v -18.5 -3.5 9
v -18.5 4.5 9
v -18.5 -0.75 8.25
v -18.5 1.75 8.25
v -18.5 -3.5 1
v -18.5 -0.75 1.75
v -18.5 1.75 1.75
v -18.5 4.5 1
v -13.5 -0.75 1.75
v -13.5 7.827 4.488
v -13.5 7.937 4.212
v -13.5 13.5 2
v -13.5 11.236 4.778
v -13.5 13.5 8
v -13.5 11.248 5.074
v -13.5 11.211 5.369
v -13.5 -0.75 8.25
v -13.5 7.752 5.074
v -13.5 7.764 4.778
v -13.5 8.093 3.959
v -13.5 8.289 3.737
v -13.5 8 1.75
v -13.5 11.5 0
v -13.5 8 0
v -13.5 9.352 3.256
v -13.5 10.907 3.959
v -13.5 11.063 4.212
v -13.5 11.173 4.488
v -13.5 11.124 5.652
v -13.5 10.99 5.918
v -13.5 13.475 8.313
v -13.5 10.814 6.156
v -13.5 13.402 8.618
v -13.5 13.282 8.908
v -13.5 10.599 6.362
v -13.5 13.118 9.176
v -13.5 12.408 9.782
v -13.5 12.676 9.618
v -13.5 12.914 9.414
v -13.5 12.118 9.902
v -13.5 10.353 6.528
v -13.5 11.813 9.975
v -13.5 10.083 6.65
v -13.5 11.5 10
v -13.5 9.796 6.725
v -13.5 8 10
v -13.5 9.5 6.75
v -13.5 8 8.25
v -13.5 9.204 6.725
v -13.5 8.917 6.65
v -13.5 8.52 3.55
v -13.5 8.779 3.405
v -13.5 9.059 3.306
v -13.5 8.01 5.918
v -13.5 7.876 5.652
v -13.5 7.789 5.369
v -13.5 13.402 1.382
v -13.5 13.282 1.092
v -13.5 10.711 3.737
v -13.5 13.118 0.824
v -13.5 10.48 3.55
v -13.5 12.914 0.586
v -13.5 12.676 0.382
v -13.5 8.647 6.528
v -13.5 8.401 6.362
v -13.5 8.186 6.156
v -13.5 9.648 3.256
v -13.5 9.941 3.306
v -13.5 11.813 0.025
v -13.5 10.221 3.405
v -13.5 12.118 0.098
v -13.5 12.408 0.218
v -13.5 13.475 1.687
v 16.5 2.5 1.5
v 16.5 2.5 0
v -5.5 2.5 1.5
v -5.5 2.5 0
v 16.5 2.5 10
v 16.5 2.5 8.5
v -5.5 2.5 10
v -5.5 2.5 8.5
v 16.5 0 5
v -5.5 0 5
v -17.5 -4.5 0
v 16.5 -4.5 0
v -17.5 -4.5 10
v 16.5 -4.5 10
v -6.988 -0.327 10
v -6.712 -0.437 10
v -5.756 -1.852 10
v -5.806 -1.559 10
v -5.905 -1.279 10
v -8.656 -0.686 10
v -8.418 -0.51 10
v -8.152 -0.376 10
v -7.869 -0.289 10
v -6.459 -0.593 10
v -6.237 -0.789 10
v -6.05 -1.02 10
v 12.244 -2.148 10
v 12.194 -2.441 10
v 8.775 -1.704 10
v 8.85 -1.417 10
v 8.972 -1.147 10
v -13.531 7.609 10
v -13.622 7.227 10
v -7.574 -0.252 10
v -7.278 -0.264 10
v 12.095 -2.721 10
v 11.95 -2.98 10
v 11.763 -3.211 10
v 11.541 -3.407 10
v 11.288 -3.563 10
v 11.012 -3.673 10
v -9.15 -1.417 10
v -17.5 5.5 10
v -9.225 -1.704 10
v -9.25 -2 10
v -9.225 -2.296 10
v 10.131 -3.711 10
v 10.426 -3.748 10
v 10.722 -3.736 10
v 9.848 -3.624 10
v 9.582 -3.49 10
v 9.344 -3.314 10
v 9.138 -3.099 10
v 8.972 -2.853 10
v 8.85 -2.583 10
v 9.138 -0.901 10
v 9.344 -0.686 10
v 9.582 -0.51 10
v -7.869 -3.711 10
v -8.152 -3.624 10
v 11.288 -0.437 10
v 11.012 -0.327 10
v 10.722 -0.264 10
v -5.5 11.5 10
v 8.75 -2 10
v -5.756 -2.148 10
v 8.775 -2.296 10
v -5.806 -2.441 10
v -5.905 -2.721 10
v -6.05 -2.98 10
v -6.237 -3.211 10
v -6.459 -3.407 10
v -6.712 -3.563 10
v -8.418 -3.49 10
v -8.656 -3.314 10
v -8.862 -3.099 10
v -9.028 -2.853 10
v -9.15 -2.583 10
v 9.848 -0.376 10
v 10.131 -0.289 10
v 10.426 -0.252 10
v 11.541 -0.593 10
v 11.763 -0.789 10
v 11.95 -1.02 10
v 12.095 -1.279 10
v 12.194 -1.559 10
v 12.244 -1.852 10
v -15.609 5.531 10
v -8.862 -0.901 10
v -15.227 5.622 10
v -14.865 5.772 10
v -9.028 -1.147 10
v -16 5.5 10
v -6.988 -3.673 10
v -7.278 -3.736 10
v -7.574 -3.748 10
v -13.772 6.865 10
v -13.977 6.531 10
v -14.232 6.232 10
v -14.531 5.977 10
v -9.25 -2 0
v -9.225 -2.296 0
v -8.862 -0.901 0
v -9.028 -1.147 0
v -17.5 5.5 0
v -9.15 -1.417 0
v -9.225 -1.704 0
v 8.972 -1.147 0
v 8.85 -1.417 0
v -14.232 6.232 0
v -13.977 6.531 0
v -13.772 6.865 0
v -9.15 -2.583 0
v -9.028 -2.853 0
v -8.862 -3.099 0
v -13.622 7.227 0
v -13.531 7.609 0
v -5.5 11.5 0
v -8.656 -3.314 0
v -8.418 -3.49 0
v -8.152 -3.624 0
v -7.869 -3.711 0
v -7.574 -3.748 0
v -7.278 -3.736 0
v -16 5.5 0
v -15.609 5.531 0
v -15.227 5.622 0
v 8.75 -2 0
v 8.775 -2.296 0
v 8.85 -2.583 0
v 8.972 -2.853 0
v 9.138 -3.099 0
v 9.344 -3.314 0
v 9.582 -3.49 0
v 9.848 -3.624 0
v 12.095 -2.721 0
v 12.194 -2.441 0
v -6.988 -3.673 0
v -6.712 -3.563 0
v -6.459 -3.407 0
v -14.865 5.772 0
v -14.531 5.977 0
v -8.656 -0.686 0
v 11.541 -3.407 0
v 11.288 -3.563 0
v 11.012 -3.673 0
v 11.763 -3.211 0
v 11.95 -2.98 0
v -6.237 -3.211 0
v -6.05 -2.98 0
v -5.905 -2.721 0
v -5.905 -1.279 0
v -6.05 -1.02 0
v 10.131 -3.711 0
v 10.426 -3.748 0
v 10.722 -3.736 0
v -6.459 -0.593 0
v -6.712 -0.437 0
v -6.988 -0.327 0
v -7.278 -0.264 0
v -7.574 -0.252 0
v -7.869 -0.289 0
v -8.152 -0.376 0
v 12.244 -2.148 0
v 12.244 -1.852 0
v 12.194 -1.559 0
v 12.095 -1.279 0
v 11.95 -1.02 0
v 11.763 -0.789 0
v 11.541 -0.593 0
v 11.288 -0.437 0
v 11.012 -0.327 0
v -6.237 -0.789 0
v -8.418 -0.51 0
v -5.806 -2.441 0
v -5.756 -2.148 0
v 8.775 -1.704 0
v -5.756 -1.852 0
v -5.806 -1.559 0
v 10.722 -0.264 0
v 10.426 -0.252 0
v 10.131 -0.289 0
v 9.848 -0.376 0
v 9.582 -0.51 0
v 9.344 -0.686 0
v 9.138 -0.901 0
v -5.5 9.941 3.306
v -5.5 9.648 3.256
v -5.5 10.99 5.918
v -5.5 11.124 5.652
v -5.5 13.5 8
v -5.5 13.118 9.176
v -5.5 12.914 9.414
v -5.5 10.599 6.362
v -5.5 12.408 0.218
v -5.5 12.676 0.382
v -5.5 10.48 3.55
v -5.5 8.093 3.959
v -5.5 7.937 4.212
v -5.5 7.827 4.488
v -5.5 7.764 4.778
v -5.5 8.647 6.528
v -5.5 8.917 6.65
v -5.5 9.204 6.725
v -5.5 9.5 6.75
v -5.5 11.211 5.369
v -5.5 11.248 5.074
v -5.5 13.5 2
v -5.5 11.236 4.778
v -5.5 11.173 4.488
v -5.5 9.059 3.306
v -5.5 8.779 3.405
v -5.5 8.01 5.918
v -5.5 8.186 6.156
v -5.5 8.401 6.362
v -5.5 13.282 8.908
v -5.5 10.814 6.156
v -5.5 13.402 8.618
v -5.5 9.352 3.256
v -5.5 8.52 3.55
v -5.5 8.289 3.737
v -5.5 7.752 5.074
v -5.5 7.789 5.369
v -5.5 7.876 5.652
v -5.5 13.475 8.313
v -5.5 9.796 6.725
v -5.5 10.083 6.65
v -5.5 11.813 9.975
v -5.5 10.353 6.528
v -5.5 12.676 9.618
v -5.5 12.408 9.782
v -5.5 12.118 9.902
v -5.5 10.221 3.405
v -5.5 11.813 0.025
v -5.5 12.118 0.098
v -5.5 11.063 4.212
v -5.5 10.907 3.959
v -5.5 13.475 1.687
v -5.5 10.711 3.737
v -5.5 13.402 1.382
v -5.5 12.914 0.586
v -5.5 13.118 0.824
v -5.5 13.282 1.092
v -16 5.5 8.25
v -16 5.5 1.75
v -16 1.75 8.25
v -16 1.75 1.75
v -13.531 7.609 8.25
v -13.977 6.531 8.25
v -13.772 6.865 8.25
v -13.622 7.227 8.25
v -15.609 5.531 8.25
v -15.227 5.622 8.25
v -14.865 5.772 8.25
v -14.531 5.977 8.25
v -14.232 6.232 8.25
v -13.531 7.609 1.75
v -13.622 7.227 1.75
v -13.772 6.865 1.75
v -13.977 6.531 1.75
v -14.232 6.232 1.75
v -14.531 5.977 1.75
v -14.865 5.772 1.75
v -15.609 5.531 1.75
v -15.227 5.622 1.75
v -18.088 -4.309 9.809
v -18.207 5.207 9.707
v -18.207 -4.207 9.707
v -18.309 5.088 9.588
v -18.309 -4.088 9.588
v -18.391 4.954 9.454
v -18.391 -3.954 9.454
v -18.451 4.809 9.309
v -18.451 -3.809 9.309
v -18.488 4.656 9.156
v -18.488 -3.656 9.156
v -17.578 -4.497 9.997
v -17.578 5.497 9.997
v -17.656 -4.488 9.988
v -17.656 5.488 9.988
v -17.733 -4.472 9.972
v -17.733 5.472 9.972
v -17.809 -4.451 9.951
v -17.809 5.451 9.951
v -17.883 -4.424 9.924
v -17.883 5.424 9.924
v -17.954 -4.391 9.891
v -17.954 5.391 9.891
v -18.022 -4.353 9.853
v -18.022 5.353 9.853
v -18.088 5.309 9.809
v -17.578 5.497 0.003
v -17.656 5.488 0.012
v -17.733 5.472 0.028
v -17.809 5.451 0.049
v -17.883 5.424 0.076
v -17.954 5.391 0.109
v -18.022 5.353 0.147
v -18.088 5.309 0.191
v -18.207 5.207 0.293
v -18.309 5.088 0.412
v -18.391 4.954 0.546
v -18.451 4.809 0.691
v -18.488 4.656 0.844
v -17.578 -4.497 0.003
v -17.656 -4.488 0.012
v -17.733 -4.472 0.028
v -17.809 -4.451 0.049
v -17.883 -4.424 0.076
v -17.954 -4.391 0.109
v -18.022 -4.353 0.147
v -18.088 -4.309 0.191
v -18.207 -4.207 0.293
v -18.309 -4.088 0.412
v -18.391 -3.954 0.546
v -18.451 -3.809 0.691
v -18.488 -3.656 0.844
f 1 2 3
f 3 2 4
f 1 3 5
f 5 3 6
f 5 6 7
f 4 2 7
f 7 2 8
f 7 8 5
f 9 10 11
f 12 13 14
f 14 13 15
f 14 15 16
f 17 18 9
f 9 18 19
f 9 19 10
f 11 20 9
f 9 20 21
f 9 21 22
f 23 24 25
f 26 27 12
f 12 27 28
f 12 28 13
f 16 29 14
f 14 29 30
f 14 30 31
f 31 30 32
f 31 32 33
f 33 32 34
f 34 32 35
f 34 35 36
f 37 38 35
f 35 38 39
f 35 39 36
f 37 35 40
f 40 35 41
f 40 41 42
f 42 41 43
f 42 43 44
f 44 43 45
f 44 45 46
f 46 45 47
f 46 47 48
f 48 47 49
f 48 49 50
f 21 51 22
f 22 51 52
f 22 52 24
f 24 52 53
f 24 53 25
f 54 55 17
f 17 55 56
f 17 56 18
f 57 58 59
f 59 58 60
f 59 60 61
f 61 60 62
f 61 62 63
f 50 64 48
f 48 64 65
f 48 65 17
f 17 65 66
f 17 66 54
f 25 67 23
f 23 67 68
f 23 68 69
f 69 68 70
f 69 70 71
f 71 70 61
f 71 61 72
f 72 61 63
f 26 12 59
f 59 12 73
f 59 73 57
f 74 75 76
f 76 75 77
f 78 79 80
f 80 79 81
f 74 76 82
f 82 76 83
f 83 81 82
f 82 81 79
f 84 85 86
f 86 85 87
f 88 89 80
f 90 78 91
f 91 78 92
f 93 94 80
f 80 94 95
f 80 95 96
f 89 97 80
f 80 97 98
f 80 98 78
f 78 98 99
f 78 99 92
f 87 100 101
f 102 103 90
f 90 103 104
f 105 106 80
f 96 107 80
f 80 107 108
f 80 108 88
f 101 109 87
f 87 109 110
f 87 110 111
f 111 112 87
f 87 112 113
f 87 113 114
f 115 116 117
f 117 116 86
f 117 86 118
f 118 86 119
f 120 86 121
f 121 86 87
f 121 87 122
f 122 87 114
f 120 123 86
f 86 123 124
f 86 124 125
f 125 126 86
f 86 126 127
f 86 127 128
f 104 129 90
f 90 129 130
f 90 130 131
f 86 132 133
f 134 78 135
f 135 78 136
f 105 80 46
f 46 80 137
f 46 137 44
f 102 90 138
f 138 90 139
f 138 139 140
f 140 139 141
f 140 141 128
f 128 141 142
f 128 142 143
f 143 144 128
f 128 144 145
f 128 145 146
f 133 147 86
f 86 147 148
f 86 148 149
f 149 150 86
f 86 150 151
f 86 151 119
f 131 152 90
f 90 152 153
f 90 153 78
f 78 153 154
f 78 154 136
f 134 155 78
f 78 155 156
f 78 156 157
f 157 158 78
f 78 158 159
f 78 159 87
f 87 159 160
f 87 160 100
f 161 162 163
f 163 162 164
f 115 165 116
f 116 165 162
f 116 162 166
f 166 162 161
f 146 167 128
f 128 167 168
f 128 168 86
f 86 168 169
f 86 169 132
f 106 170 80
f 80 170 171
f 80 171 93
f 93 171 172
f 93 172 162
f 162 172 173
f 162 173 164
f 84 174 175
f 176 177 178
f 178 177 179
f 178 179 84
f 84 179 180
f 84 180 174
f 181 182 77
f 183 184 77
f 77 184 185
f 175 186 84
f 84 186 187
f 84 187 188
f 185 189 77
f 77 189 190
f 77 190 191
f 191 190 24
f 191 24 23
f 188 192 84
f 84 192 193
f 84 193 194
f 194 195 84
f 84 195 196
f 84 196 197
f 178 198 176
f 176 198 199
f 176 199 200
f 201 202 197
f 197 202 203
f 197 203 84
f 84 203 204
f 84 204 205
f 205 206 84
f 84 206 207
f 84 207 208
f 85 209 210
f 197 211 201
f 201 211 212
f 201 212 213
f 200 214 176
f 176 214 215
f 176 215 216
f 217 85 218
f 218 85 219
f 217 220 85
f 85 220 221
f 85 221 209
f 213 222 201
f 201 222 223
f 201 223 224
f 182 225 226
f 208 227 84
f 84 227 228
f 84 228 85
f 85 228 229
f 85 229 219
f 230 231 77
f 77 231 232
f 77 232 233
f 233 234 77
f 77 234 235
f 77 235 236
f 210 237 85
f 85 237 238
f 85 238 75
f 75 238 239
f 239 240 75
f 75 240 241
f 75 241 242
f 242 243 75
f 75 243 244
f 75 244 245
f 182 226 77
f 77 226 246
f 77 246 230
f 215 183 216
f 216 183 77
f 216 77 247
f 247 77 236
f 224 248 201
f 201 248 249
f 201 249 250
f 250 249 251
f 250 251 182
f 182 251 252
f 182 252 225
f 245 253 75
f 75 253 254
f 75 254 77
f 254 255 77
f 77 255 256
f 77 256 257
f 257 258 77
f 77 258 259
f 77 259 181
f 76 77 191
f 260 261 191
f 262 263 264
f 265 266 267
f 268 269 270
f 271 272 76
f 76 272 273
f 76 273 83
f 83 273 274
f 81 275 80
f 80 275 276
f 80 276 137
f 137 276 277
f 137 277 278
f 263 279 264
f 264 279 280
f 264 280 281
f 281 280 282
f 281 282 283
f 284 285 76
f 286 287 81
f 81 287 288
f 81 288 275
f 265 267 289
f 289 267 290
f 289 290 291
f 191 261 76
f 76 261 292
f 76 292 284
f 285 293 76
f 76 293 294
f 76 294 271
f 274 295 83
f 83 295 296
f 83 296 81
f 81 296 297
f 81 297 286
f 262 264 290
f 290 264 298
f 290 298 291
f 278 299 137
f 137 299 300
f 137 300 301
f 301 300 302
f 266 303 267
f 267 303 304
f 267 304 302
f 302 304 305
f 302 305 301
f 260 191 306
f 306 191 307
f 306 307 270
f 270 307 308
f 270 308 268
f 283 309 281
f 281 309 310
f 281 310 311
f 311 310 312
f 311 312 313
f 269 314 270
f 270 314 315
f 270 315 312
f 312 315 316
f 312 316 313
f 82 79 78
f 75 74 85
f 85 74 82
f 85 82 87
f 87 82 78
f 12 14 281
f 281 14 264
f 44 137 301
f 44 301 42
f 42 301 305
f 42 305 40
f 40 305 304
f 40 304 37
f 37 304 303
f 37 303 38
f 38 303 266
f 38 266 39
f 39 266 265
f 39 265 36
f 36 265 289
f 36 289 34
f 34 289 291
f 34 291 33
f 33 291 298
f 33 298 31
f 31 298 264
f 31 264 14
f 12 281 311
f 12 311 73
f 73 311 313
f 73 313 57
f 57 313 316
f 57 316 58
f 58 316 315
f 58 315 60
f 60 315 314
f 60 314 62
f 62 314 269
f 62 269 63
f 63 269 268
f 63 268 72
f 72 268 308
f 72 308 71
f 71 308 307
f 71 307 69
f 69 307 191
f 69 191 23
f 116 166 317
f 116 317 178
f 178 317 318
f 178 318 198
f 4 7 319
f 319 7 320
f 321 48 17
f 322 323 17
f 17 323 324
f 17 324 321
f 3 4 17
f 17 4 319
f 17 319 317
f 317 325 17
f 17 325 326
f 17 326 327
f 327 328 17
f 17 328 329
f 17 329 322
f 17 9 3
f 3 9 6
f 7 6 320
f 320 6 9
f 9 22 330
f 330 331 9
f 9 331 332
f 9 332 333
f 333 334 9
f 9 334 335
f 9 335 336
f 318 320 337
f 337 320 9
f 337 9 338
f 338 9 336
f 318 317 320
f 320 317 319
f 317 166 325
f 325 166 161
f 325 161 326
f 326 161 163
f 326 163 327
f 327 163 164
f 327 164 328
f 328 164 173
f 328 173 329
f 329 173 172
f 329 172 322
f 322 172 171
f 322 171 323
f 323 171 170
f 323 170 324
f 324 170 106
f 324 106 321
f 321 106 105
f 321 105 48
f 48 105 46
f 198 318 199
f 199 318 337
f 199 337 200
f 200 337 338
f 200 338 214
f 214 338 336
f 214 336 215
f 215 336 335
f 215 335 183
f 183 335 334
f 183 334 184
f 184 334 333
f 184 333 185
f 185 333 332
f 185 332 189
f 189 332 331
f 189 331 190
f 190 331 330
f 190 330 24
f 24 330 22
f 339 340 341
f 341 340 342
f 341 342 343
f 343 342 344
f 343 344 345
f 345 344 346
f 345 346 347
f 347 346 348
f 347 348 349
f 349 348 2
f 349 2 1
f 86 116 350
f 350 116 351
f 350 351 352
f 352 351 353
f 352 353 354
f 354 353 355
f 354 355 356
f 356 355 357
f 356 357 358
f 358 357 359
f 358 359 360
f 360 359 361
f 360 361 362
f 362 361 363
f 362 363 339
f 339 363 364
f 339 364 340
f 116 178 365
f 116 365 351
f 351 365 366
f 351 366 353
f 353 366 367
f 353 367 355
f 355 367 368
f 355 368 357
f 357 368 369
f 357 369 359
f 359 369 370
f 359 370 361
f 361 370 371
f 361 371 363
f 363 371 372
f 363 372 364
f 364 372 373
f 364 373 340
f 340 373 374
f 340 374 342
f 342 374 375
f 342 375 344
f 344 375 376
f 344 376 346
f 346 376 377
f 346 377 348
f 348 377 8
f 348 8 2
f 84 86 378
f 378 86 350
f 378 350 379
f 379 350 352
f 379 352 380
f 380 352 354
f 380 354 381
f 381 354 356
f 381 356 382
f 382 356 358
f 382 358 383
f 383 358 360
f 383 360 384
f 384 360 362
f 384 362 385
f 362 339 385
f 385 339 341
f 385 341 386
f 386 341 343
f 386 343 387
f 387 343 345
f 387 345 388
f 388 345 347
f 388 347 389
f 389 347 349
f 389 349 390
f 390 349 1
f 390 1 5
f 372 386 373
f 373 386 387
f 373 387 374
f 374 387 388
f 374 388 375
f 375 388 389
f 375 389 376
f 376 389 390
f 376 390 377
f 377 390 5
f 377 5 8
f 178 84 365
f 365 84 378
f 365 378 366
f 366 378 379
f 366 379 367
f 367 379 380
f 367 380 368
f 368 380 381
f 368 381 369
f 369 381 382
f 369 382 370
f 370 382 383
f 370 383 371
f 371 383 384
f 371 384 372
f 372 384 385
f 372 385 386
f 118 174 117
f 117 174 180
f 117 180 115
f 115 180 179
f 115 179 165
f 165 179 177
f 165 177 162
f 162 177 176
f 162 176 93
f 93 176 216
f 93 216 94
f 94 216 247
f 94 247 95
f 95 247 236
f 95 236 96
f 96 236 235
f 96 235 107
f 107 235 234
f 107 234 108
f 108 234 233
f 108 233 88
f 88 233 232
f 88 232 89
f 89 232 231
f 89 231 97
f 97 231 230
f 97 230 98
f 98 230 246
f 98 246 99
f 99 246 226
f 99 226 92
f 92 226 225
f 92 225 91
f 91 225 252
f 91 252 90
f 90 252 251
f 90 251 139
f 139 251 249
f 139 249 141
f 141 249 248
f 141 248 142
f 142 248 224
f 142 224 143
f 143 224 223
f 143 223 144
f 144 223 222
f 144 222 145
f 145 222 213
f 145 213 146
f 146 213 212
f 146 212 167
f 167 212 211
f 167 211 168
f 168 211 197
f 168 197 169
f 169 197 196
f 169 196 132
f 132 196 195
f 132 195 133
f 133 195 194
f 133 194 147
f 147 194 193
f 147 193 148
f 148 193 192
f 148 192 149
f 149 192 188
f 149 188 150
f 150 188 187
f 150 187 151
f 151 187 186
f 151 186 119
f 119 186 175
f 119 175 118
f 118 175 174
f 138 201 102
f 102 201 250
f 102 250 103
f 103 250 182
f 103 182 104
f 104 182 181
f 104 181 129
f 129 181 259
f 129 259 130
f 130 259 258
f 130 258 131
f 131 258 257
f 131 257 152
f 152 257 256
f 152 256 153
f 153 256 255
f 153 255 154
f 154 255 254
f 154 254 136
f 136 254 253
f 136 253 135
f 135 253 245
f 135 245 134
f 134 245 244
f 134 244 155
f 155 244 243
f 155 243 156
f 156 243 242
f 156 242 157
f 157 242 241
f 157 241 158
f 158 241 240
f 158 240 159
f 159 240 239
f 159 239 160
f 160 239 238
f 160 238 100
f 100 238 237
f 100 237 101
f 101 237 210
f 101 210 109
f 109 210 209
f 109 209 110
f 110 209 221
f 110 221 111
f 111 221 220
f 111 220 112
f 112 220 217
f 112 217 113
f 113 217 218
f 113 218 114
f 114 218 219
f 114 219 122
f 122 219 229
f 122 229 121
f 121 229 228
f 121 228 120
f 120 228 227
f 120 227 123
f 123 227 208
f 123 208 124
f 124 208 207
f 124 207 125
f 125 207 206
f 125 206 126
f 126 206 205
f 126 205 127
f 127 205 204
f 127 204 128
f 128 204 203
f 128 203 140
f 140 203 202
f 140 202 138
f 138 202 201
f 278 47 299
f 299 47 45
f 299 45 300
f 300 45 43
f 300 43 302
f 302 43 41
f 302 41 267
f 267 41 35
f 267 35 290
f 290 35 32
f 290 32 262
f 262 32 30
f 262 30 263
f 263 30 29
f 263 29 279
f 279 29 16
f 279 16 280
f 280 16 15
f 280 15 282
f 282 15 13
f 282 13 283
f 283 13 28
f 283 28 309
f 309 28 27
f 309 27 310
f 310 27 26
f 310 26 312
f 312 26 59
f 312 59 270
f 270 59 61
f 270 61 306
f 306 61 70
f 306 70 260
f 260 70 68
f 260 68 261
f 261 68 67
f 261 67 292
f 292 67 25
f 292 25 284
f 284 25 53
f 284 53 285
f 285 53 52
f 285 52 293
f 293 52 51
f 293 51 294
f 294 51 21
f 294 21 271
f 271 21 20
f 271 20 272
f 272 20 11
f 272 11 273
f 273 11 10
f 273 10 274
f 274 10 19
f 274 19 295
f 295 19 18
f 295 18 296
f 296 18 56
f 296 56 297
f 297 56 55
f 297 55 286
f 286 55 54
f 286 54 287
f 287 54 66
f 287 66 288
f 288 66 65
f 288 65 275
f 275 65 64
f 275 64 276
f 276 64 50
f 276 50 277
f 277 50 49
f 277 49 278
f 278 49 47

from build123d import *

# Parameters (mm, degrees)
SKETCH_1_W           = 27
SKETCH_1_H           = 9
EXTRUDE_1_DEPTH      = 10
SKETCH_4_W           = 5
SKETCH_4_H           = 10
EXTRUDE_4_DEPTH      = 6
SKETCH_5_W           = 22
SKETCH_5_H           = 10
CUT_EXTRUDE_1_DEPTH  = 2
CUT_EXTRUDE_2_DEPTH  = 22
FILLET_1_R           = 1
FILLET_2_R           = 1
SKETCH_8_W           = 10
SKETCH_8_H           = 20
EXTRUDE_5_DEPTH      = 8
FILLET_3_R           = 2
FILLET_4_R           = 2
EXTRUDE_6_DEPTH      = 3
SKETCH_11_W          = 10
SKETCH_11_H          = 2.149089289
CUT_EXTRUDE_5_DEPTH  = 29.70975444
FILLET_5_R           = 2
FILLET_6_R           = 2
SKETCH_14_R          = 1.5
CUT_EXTRUDE_6_DEPTH  = 24.547823679
SKETCH_15_R          = 1.5
EXTRUDE_7_DEPTH      = 10
SKETCH_18_R          = 1.5
EXTRUDE_9_DEPTH      = 10
SKETCH_17_R          = 1.5
CUT_EXTRUDE_7_DEPTH  = 24.547823679
SKETCH_19_R          = 1.5
CUT_EXTRUDE_8_DEPTH  = 24.547823679
CUT_EXTRUDE_9_DEPTH  = 22
SKETCH_23_W          = 10
SKETCH_23_H          = 10
EXTRUDE_10_DEPTH     = 5
SKETCH_24_W          = 3.25
SKETCH_24_H          = 1.25
CUT_EXTRUDE_11_DEPTH = 4
CUT_EXTRUDE_12_DEPTH = 6.25
FILLET_7_R           = 2.5
FILLET_8_R           = 1
SKETCH_26_R          = 1.5
CUT_EXTRUDE_13_DEPTH = 35.383862494
SKETCH_27_R          = 1.75
CUT_EXTRUDE_14_DEPTH = 25.989997999
SKETCH_28_R          = 1.75
CUT_EXTRUDE_15_DEPTH = 35.383862494


with BuildPart() as part:
    # Эскиз1 → Бобышка-Вытянуть1 (new body)
    with BuildSketch(Plane.XY):
        Rectangle(SKETCH_1_W, SKETCH_1_H)
    extrude(amount=EXTRUDE_1_DEPTH)

    # Эскиз4 → Бобышка-Вытянуть4 (add)
    with BuildSketch(Plane(origin=(0, 4.5, 0), x_dir=(1, 0, 0), z_dir=(0, 1, 0))):
        with Locations((-11, -5)):
            Rectangle(SKETCH_4_W, SKETCH_4_H)
    extrude(amount=EXTRUDE_4_DEPTH)

    # Эскиз5 → Вырез-Вытянуть1 (cut)
    with BuildSketch(Plane(origin=(0, 4.5, 0), x_dir=(1, 0, 0), z_dir=(0, 1, 0))):
        with Locations((2.5, -5)):
            Rectangle(SKETCH_5_W, SKETCH_5_H)
    extrude(amount=-CUT_EXTRUDE_1_DEPTH, mode=Mode.SUBTRACT)

    # Эскиз6 → Вырез-Вытянуть2 (cut)
    with BuildSketch(Plane(origin=(13.5, 0, 0), x_dir=(0, 0, -1), z_dir=(1, 0, 0))):
        Polygon((-1.5, 2.5), (-8.5, 2.5), (-5, 0), align=None)
    extrude(amount=-CUT_EXTRUDE_2_DEPTH, mode=Mode.SUBTRACT)

    # Скругление1
    fillet_1_edges = [part.edges().sort_by_distance(p)[0] for p in [
        (-11, 10.5, 10),
    ]]
    fillet(fillet_1_edges, radius=FILLET_1_R)

    # Скругление2
    fillet_2_edges = [part.edges().sort_by_distance(p)[0] for p in [
        (-11, 10.5, 0),
    ]]
    fillet(fillet_2_edges, radius=FILLET_2_R)

    # Эскиз8 → Бобышка-Вытянуть5 (add)
    with BuildSketch(Plane.ZY.offset(13.5)):
        with Locations((5, 5.5)):
            Rectangle(SKETCH_8_W, SKETCH_8_H)
    extrude(amount=-EXTRUDE_5_DEPTH)

    # Скругление3
    fillet_3_edges = [part.edges().sort_by_distance(p)[0] for p in [
        (-9.5, 15.5, 10),
    ]]
    fillet(fillet_3_edges, radius=FILLET_3_R)

    # Скругление4
    fillet_4_edges = [part.edges().sort_by_distance(p)[0] for p in [
        (-9.5, 15.5, 0),
    ]]
    fillet(fillet_4_edges, radius=FILLET_4_R)

    # Эскиз9 → Бобышка-Вытянуть6 (add)
    with BuildSketch(Plane(origin=(13.5, 0, 0), x_dir=(0, 0, -1), z_dir=(1, 0, 0))):
        Polygon((-10, -4.5), (-10, 2.5), (-8.5, 2.5), (-5, 0), (-1.5, 2.5), (0, 2.5), (0, -4.5), align=None)
    extrude(amount=EXTRUDE_6_DEPTH)

    # Эскиз11 → Вырез-Вытянуть5 (cut, through all)
    with BuildSketch(Plane(origin=(-5.5, 0, 0), x_dir=(0, 0, -1), z_dir=(1, 0, 0))):
        with Locations((-5, 14.574544645)):
            Rectangle(SKETCH_11_W, SKETCH_11_H)
    extrude(amount=-CUT_EXTRUDE_5_DEPTH, mode=Mode.SUBTRACT)

    # Скругление5
    fillet_5_edges = [part.edges().sort_by_distance(p)[0] for p in [
        (-9.5, 13.5, 10),
    ]]
    fillet(fillet_5_edges, radius=FILLET_5_R)

    # Скругление6
    fillet_6_edges = [part.edges().sort_by_distance(p)[0] for p in [
        (-9.5, 13.5, 0),
    ]]
    fillet(fillet_6_edges, radius=FILLET_6_R)

    # Эскиз14 → Вырез-Вытянуть6 (cut, through all)
    with BuildSketch(Plane.XY.offset(10)):
        with Locations((-7.5, -1)):
            Circle(SKETCH_14_R)
        with Locations((10.5, -1)):
            Circle(SKETCH_14_R)
    extrude(amount=-CUT_EXTRUDE_6_DEPTH, mode=Mode.SUBTRACT)

    # Эскиз15 → Бобышка-Вытянуть7 (add, through all)
    with BuildSketch(Plane.XY.offset(10)):
        with Locations((10.5, -1)):
            Circle(SKETCH_15_R)
    extrude(amount=-EXTRUDE_7_DEPTH)

    # Эскиз18 → Бобышка-Вытянуть9 (add, through all)
    with BuildSketch(Plane.XY.offset(10)):
        with Locations((-7.5, -1)):
            Circle(SKETCH_18_R)
    extrude(amount=-EXTRUDE_9_DEPTH)

    # Эскиз17 → Вырез-Вытянуть7 (cut, through all)
    with BuildSketch(Plane.XY.offset(10)):
        with Locations((-7.5, -2)):
            Circle(SKETCH_17_R)
    extrude(amount=-CUT_EXTRUDE_7_DEPTH, mode=Mode.SUBTRACT)

    # Эскиз19 → Вырез-Вытянуть8 (cut, through all)
    with BuildSketch(Plane.XY.offset(10)):
        with Locations((10.5, -2)):
            Circle(SKETCH_19_R)
    extrude(amount=-CUT_EXTRUDE_8_DEPTH, mode=Mode.SUBTRACT)

    # Эскиз20 → Вырез-Вытянуть9 (cut)
    with BuildSketch(Plane(origin=(16.5, 0, 0), x_dir=(0, 0, -1), z_dir=(1, 0, 0))):
        Polygon((-8.5, 2.5), (-5, 0), (-1.5, 2.5), align=None)
    extrude(amount=-CUT_EXTRUDE_9_DEPTH, mode=Mode.SUBTRACT)

    # Эскиз23 → Бобышка-Вытянуть10 (add)
    with BuildSketch(Plane.ZY.offset(13.5)):
        with Locations((5, 0.5)):
            Rectangle(SKETCH_23_W, SKETCH_23_H)
    extrude(amount=EXTRUDE_10_DEPTH)

    # Эскиз24 → Вырез-Вытянуть11 (cut)
    with BuildSketch(Plane.ZY.offset(18.5)):
        with Locations((3.375, 1.125)):
            Rectangle(SKETCH_24_W, SKETCH_24_H)
        with Locations((6.625, 1.125)):
            Rectangle(SKETCH_24_W, SKETCH_24_H)
        with Locations((3.375, -0.125)):
            Rectangle(SKETCH_24_W, SKETCH_24_H)
        with Locations((6.625, -0.125)):
            Rectangle(SKETCH_24_W, SKETCH_24_H)
    extrude(amount=-CUT_EXTRUDE_11_DEPTH, mode=Mode.SUBTRACT)

    # Эскиз25 → Вырез-Вытянуть12 (cut)
    with BuildSketch(Plane(origin=(0, 5.5, 0), x_dir=(1, 0, 0), z_dir=(0, 1, 0))):
        Polygon((-13.5, -5), (-13.5, -1.75), (-16, -1.75), (-16, -8.25), (-13.5, -8.25), align=None)
    extrude(amount=-CUT_EXTRUDE_12_DEPTH, mode=Mode.SUBTRACT)

    # Скругление7
    fillet_7_edges = [part.edges().sort_by_distance(p)[0] for p in [
        (-13.5, 5.5, 9.125),
        (-13.5, 5.5, 0.875),
    ]]
    fillet(fillet_7_edges, radius=FILLET_7_R)

    # Скругление8
    fillet_8_edges = [part.edges().sort_by_distance(p)[0] for p in [
        (-18.5, 0.5, 0),
        (-18.5, -4.5, 5),
        (-18.5, 0.5, 10),
        (-18.5, 5.5, 5),
    ]]
    fillet(fillet_8_edges, radius=FILLET_8_R)

    # Эскиз26 → Вырез-Вытянуть13 (cut, through all)
    with BuildSketch(Plane.ZY.offset(13.5)):
        with Locations((5, 9.5)):
            Circle(SKETCH_26_R)
    extrude(amount=-CUT_EXTRUDE_13_DEPTH, mode=Mode.SUBTRACT)

    # Эскиз27 → Вырез-Вытянуть14 (cut, through all)
    with BuildSketch(Plane(origin=(0, 0, 0), x_dir=(-1, 0, 0), z_dir=(0, 0, -1))):
        with Locations((-10.5, -2)):
            Circle(SKETCH_27_R)
        with Locations((7.5, -2)):
            Circle(SKETCH_27_R)
    extrude(amount=-CUT_EXTRUDE_14_DEPTH, mode=Mode.SUBTRACT)

    # Эскиз28 → Вырез-Вытянуть15 (cut, through all)
    with BuildSketch(Plane.ZY.offset(13.5)):
        with Locations((5, 9.5)):
            Circle(SKETCH_28_R)
    extrude(amount=-CUT_EXTRUDE_15_DEPTH, mode=Mode.SUBTRACT)


solid = part.part
